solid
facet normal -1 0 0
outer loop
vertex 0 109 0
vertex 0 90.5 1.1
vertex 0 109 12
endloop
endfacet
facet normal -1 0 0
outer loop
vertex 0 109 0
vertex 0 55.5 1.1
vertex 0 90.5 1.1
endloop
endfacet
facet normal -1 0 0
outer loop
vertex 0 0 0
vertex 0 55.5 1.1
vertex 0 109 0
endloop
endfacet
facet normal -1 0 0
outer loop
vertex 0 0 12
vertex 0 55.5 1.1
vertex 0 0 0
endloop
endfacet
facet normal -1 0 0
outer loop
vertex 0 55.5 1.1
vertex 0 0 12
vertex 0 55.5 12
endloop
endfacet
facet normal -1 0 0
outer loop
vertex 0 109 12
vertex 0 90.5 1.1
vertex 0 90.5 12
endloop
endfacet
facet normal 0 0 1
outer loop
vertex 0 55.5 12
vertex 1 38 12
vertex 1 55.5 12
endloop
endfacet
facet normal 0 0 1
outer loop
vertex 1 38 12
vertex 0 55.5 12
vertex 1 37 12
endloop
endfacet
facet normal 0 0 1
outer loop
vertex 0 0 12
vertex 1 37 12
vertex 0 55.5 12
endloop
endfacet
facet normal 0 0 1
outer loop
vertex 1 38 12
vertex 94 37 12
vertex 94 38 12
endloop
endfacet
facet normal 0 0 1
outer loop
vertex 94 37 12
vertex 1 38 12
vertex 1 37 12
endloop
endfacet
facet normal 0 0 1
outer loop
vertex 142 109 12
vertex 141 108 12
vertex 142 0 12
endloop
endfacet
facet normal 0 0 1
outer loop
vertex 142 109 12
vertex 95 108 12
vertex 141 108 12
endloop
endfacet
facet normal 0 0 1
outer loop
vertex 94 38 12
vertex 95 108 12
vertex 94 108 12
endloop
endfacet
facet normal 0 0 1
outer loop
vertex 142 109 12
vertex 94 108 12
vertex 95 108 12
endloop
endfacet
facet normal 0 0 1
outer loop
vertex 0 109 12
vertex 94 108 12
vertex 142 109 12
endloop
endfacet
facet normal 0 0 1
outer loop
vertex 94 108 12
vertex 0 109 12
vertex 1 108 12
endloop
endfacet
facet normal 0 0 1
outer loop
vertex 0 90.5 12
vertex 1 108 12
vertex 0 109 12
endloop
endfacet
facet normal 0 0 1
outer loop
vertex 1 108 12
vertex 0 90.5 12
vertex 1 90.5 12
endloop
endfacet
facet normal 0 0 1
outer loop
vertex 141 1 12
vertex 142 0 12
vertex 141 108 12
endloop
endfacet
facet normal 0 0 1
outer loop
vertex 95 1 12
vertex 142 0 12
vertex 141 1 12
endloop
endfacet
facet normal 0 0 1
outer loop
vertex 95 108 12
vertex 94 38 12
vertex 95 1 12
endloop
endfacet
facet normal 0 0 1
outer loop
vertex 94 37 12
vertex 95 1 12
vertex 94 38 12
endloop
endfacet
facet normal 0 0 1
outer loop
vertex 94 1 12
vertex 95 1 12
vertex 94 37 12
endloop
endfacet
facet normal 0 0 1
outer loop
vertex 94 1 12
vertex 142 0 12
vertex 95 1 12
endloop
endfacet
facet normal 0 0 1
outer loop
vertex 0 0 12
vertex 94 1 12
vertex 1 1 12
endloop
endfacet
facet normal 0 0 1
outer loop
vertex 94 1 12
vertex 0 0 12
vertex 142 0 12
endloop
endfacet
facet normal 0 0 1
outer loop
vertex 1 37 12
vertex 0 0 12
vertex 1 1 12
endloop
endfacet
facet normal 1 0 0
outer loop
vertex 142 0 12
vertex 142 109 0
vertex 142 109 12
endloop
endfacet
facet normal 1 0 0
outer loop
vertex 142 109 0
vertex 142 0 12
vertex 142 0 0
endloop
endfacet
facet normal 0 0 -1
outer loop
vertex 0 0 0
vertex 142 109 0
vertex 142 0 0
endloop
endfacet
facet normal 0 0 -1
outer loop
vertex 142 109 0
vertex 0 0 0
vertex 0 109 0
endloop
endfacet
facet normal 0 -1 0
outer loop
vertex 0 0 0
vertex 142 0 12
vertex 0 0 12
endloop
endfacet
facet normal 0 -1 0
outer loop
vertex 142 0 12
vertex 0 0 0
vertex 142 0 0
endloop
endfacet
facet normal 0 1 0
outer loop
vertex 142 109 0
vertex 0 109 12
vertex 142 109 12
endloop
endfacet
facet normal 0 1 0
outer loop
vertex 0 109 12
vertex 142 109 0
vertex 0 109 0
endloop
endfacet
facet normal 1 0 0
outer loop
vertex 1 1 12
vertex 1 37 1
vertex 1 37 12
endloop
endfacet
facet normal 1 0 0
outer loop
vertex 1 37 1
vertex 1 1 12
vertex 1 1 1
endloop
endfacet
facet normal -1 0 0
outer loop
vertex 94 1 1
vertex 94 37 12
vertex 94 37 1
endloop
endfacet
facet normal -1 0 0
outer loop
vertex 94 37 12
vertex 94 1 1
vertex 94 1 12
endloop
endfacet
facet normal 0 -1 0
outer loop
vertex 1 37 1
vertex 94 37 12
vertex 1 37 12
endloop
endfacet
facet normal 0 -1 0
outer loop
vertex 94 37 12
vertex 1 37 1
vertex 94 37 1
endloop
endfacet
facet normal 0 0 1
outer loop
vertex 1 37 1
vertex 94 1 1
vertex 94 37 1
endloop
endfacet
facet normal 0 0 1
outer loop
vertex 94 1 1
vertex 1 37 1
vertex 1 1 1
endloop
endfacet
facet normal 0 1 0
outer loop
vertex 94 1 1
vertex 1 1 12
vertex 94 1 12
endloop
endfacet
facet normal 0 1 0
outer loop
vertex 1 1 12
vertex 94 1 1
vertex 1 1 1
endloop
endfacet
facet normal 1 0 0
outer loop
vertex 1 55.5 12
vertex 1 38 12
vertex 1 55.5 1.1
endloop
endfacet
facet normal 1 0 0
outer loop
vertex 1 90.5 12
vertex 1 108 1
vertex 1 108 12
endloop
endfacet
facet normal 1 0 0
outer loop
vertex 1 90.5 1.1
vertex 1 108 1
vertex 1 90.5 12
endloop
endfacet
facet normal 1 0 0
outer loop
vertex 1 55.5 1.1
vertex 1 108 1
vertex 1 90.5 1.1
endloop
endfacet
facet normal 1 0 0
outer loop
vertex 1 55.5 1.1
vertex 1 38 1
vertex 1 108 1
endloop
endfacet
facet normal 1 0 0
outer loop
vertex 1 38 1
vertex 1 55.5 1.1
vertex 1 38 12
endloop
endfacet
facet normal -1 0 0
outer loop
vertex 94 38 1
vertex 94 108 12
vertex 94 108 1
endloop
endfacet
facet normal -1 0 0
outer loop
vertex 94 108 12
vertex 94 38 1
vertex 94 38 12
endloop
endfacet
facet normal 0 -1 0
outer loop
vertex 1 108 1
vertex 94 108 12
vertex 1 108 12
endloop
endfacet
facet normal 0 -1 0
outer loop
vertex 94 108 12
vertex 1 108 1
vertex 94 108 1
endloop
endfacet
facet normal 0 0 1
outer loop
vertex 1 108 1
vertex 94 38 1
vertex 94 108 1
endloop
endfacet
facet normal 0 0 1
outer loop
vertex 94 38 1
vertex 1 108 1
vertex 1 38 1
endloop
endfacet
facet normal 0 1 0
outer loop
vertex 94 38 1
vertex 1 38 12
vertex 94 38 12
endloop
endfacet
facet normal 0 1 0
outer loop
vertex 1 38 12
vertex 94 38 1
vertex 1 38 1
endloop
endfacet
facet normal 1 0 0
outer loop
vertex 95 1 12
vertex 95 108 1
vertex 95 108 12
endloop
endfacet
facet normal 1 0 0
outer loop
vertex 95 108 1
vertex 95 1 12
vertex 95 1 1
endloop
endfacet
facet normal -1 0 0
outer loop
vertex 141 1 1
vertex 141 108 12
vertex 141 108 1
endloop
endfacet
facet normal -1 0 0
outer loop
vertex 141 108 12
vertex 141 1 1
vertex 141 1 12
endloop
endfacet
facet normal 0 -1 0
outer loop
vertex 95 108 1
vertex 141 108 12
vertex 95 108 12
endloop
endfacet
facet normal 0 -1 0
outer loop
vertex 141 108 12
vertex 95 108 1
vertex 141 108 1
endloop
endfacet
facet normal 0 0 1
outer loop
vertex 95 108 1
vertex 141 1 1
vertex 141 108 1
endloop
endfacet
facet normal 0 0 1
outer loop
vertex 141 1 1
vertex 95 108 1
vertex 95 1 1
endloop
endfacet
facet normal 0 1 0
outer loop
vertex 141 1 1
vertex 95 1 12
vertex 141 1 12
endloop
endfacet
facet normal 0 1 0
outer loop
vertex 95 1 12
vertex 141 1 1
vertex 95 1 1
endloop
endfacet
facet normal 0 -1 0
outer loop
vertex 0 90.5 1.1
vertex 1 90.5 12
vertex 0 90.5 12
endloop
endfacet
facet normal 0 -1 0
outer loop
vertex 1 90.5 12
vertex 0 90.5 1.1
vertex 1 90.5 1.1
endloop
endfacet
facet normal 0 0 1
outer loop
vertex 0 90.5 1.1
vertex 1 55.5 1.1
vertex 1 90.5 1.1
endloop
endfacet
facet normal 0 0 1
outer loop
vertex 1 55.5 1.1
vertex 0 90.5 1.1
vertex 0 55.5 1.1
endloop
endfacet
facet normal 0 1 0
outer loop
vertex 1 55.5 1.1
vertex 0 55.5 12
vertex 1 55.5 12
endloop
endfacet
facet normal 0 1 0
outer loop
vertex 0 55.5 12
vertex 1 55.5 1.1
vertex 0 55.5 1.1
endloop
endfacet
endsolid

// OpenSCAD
// file: parameters.scad
//parameters
//thickness of box sides
wall = 2;

//width of cards, including sleeves and extra space
crdX = 70;

//length of cards including sleeves and extra space
crdY = 93;                  

//height of the entire pile of cards.  modify if you have more cards
crdZ = 18;

//how much of the main box is tapered to accommodate the lid
lidY = 25;

//the size of the taper
lidDiff = 0.75;

//The amount of "looseness" between the lid and the box on each side
lidSpacing = 0.25;

sideFontName="Impact";
sideFontSize=10;
sideFontLeftPadding=2;

//constant to avoid coincident faces.  don't change this
_min=0.1;

//calculated values
trayX = crdX+(2*wall);
trayY = crdY+(2*wall);
trayZ = crdZ+(2*wall);

// values for card tray
crdTrayZ = 23 + wall;
trayNotch = 40;
trayFontSize = 16;

// non-card well
wellX = 142;

lvl1Z = 12;

// places discs
discR = 60;
discPadding = 2;
discHolder = 3;
discBrim = 2;
discNotch = 70;
holderY = (2 * discR) + (2 * discHolder) + (2 * discPadding) + (2 * discBrim);

//miscellaneous tray
boxSize = 243;
miscBottom = 1;
miscX = wellX;
miscY = boxSize - holderY;
miscZ = lvl1Z;
miscWall=1;

//blood tokens tray
// same basic size as the places disc holder
btWall = 1;
btBottom = 2;
btWellDepth = 18;
btZ = btBottom + btWellDepth;
btWellX = (wellX - (5*btWall))/4;

//blood tokens ks
// same basic size as the miscellaneous tray
btkWall = 1;
btkBottom = 2;
btkWellDepth = 18;
btkZ = btkBottom + btkWellDepth;
btkWellX = (wellX - (5*btWall))/4;
// main file
include <parameters.scad>;

Z = lvl1Z - miscBottom + _min;
redX = crdY;
redY = crdX;
blueX = crdY;
blueY = miscY - redY - (3*miscWall);
greenX = miscX - (3*miscWall) - crdY;
greenY = miscY - (2*miscWall);
notchY = crdX/2;
notchX = 10;
notchYTranslate = (2*miscWall) + blueY + (redY/2)-(notchY/2);

difference() {
    cube([miscX, miscY, miscZ]);

    translate([miscWall, miscWall, miscBottom])
    color("blue")
    cube([blueX,blueY,Z]);

    translate([miscWall, (2*miscWall) + blueY, miscBottom])
    color("red")
    cube([crdY, crdX, Z]);

    translate([(2*miscWall) + crdY, miscWall, miscBottom])
    color("green")
    cube([miscX - (3*miscWall) - crdY, miscY - (2*miscWall), Z]);

    translate([-(notchX/2),notchYTranslate,miscBottom+_min])
    color("green")
    cube([notchX, notchY, Z+_min]);
}
